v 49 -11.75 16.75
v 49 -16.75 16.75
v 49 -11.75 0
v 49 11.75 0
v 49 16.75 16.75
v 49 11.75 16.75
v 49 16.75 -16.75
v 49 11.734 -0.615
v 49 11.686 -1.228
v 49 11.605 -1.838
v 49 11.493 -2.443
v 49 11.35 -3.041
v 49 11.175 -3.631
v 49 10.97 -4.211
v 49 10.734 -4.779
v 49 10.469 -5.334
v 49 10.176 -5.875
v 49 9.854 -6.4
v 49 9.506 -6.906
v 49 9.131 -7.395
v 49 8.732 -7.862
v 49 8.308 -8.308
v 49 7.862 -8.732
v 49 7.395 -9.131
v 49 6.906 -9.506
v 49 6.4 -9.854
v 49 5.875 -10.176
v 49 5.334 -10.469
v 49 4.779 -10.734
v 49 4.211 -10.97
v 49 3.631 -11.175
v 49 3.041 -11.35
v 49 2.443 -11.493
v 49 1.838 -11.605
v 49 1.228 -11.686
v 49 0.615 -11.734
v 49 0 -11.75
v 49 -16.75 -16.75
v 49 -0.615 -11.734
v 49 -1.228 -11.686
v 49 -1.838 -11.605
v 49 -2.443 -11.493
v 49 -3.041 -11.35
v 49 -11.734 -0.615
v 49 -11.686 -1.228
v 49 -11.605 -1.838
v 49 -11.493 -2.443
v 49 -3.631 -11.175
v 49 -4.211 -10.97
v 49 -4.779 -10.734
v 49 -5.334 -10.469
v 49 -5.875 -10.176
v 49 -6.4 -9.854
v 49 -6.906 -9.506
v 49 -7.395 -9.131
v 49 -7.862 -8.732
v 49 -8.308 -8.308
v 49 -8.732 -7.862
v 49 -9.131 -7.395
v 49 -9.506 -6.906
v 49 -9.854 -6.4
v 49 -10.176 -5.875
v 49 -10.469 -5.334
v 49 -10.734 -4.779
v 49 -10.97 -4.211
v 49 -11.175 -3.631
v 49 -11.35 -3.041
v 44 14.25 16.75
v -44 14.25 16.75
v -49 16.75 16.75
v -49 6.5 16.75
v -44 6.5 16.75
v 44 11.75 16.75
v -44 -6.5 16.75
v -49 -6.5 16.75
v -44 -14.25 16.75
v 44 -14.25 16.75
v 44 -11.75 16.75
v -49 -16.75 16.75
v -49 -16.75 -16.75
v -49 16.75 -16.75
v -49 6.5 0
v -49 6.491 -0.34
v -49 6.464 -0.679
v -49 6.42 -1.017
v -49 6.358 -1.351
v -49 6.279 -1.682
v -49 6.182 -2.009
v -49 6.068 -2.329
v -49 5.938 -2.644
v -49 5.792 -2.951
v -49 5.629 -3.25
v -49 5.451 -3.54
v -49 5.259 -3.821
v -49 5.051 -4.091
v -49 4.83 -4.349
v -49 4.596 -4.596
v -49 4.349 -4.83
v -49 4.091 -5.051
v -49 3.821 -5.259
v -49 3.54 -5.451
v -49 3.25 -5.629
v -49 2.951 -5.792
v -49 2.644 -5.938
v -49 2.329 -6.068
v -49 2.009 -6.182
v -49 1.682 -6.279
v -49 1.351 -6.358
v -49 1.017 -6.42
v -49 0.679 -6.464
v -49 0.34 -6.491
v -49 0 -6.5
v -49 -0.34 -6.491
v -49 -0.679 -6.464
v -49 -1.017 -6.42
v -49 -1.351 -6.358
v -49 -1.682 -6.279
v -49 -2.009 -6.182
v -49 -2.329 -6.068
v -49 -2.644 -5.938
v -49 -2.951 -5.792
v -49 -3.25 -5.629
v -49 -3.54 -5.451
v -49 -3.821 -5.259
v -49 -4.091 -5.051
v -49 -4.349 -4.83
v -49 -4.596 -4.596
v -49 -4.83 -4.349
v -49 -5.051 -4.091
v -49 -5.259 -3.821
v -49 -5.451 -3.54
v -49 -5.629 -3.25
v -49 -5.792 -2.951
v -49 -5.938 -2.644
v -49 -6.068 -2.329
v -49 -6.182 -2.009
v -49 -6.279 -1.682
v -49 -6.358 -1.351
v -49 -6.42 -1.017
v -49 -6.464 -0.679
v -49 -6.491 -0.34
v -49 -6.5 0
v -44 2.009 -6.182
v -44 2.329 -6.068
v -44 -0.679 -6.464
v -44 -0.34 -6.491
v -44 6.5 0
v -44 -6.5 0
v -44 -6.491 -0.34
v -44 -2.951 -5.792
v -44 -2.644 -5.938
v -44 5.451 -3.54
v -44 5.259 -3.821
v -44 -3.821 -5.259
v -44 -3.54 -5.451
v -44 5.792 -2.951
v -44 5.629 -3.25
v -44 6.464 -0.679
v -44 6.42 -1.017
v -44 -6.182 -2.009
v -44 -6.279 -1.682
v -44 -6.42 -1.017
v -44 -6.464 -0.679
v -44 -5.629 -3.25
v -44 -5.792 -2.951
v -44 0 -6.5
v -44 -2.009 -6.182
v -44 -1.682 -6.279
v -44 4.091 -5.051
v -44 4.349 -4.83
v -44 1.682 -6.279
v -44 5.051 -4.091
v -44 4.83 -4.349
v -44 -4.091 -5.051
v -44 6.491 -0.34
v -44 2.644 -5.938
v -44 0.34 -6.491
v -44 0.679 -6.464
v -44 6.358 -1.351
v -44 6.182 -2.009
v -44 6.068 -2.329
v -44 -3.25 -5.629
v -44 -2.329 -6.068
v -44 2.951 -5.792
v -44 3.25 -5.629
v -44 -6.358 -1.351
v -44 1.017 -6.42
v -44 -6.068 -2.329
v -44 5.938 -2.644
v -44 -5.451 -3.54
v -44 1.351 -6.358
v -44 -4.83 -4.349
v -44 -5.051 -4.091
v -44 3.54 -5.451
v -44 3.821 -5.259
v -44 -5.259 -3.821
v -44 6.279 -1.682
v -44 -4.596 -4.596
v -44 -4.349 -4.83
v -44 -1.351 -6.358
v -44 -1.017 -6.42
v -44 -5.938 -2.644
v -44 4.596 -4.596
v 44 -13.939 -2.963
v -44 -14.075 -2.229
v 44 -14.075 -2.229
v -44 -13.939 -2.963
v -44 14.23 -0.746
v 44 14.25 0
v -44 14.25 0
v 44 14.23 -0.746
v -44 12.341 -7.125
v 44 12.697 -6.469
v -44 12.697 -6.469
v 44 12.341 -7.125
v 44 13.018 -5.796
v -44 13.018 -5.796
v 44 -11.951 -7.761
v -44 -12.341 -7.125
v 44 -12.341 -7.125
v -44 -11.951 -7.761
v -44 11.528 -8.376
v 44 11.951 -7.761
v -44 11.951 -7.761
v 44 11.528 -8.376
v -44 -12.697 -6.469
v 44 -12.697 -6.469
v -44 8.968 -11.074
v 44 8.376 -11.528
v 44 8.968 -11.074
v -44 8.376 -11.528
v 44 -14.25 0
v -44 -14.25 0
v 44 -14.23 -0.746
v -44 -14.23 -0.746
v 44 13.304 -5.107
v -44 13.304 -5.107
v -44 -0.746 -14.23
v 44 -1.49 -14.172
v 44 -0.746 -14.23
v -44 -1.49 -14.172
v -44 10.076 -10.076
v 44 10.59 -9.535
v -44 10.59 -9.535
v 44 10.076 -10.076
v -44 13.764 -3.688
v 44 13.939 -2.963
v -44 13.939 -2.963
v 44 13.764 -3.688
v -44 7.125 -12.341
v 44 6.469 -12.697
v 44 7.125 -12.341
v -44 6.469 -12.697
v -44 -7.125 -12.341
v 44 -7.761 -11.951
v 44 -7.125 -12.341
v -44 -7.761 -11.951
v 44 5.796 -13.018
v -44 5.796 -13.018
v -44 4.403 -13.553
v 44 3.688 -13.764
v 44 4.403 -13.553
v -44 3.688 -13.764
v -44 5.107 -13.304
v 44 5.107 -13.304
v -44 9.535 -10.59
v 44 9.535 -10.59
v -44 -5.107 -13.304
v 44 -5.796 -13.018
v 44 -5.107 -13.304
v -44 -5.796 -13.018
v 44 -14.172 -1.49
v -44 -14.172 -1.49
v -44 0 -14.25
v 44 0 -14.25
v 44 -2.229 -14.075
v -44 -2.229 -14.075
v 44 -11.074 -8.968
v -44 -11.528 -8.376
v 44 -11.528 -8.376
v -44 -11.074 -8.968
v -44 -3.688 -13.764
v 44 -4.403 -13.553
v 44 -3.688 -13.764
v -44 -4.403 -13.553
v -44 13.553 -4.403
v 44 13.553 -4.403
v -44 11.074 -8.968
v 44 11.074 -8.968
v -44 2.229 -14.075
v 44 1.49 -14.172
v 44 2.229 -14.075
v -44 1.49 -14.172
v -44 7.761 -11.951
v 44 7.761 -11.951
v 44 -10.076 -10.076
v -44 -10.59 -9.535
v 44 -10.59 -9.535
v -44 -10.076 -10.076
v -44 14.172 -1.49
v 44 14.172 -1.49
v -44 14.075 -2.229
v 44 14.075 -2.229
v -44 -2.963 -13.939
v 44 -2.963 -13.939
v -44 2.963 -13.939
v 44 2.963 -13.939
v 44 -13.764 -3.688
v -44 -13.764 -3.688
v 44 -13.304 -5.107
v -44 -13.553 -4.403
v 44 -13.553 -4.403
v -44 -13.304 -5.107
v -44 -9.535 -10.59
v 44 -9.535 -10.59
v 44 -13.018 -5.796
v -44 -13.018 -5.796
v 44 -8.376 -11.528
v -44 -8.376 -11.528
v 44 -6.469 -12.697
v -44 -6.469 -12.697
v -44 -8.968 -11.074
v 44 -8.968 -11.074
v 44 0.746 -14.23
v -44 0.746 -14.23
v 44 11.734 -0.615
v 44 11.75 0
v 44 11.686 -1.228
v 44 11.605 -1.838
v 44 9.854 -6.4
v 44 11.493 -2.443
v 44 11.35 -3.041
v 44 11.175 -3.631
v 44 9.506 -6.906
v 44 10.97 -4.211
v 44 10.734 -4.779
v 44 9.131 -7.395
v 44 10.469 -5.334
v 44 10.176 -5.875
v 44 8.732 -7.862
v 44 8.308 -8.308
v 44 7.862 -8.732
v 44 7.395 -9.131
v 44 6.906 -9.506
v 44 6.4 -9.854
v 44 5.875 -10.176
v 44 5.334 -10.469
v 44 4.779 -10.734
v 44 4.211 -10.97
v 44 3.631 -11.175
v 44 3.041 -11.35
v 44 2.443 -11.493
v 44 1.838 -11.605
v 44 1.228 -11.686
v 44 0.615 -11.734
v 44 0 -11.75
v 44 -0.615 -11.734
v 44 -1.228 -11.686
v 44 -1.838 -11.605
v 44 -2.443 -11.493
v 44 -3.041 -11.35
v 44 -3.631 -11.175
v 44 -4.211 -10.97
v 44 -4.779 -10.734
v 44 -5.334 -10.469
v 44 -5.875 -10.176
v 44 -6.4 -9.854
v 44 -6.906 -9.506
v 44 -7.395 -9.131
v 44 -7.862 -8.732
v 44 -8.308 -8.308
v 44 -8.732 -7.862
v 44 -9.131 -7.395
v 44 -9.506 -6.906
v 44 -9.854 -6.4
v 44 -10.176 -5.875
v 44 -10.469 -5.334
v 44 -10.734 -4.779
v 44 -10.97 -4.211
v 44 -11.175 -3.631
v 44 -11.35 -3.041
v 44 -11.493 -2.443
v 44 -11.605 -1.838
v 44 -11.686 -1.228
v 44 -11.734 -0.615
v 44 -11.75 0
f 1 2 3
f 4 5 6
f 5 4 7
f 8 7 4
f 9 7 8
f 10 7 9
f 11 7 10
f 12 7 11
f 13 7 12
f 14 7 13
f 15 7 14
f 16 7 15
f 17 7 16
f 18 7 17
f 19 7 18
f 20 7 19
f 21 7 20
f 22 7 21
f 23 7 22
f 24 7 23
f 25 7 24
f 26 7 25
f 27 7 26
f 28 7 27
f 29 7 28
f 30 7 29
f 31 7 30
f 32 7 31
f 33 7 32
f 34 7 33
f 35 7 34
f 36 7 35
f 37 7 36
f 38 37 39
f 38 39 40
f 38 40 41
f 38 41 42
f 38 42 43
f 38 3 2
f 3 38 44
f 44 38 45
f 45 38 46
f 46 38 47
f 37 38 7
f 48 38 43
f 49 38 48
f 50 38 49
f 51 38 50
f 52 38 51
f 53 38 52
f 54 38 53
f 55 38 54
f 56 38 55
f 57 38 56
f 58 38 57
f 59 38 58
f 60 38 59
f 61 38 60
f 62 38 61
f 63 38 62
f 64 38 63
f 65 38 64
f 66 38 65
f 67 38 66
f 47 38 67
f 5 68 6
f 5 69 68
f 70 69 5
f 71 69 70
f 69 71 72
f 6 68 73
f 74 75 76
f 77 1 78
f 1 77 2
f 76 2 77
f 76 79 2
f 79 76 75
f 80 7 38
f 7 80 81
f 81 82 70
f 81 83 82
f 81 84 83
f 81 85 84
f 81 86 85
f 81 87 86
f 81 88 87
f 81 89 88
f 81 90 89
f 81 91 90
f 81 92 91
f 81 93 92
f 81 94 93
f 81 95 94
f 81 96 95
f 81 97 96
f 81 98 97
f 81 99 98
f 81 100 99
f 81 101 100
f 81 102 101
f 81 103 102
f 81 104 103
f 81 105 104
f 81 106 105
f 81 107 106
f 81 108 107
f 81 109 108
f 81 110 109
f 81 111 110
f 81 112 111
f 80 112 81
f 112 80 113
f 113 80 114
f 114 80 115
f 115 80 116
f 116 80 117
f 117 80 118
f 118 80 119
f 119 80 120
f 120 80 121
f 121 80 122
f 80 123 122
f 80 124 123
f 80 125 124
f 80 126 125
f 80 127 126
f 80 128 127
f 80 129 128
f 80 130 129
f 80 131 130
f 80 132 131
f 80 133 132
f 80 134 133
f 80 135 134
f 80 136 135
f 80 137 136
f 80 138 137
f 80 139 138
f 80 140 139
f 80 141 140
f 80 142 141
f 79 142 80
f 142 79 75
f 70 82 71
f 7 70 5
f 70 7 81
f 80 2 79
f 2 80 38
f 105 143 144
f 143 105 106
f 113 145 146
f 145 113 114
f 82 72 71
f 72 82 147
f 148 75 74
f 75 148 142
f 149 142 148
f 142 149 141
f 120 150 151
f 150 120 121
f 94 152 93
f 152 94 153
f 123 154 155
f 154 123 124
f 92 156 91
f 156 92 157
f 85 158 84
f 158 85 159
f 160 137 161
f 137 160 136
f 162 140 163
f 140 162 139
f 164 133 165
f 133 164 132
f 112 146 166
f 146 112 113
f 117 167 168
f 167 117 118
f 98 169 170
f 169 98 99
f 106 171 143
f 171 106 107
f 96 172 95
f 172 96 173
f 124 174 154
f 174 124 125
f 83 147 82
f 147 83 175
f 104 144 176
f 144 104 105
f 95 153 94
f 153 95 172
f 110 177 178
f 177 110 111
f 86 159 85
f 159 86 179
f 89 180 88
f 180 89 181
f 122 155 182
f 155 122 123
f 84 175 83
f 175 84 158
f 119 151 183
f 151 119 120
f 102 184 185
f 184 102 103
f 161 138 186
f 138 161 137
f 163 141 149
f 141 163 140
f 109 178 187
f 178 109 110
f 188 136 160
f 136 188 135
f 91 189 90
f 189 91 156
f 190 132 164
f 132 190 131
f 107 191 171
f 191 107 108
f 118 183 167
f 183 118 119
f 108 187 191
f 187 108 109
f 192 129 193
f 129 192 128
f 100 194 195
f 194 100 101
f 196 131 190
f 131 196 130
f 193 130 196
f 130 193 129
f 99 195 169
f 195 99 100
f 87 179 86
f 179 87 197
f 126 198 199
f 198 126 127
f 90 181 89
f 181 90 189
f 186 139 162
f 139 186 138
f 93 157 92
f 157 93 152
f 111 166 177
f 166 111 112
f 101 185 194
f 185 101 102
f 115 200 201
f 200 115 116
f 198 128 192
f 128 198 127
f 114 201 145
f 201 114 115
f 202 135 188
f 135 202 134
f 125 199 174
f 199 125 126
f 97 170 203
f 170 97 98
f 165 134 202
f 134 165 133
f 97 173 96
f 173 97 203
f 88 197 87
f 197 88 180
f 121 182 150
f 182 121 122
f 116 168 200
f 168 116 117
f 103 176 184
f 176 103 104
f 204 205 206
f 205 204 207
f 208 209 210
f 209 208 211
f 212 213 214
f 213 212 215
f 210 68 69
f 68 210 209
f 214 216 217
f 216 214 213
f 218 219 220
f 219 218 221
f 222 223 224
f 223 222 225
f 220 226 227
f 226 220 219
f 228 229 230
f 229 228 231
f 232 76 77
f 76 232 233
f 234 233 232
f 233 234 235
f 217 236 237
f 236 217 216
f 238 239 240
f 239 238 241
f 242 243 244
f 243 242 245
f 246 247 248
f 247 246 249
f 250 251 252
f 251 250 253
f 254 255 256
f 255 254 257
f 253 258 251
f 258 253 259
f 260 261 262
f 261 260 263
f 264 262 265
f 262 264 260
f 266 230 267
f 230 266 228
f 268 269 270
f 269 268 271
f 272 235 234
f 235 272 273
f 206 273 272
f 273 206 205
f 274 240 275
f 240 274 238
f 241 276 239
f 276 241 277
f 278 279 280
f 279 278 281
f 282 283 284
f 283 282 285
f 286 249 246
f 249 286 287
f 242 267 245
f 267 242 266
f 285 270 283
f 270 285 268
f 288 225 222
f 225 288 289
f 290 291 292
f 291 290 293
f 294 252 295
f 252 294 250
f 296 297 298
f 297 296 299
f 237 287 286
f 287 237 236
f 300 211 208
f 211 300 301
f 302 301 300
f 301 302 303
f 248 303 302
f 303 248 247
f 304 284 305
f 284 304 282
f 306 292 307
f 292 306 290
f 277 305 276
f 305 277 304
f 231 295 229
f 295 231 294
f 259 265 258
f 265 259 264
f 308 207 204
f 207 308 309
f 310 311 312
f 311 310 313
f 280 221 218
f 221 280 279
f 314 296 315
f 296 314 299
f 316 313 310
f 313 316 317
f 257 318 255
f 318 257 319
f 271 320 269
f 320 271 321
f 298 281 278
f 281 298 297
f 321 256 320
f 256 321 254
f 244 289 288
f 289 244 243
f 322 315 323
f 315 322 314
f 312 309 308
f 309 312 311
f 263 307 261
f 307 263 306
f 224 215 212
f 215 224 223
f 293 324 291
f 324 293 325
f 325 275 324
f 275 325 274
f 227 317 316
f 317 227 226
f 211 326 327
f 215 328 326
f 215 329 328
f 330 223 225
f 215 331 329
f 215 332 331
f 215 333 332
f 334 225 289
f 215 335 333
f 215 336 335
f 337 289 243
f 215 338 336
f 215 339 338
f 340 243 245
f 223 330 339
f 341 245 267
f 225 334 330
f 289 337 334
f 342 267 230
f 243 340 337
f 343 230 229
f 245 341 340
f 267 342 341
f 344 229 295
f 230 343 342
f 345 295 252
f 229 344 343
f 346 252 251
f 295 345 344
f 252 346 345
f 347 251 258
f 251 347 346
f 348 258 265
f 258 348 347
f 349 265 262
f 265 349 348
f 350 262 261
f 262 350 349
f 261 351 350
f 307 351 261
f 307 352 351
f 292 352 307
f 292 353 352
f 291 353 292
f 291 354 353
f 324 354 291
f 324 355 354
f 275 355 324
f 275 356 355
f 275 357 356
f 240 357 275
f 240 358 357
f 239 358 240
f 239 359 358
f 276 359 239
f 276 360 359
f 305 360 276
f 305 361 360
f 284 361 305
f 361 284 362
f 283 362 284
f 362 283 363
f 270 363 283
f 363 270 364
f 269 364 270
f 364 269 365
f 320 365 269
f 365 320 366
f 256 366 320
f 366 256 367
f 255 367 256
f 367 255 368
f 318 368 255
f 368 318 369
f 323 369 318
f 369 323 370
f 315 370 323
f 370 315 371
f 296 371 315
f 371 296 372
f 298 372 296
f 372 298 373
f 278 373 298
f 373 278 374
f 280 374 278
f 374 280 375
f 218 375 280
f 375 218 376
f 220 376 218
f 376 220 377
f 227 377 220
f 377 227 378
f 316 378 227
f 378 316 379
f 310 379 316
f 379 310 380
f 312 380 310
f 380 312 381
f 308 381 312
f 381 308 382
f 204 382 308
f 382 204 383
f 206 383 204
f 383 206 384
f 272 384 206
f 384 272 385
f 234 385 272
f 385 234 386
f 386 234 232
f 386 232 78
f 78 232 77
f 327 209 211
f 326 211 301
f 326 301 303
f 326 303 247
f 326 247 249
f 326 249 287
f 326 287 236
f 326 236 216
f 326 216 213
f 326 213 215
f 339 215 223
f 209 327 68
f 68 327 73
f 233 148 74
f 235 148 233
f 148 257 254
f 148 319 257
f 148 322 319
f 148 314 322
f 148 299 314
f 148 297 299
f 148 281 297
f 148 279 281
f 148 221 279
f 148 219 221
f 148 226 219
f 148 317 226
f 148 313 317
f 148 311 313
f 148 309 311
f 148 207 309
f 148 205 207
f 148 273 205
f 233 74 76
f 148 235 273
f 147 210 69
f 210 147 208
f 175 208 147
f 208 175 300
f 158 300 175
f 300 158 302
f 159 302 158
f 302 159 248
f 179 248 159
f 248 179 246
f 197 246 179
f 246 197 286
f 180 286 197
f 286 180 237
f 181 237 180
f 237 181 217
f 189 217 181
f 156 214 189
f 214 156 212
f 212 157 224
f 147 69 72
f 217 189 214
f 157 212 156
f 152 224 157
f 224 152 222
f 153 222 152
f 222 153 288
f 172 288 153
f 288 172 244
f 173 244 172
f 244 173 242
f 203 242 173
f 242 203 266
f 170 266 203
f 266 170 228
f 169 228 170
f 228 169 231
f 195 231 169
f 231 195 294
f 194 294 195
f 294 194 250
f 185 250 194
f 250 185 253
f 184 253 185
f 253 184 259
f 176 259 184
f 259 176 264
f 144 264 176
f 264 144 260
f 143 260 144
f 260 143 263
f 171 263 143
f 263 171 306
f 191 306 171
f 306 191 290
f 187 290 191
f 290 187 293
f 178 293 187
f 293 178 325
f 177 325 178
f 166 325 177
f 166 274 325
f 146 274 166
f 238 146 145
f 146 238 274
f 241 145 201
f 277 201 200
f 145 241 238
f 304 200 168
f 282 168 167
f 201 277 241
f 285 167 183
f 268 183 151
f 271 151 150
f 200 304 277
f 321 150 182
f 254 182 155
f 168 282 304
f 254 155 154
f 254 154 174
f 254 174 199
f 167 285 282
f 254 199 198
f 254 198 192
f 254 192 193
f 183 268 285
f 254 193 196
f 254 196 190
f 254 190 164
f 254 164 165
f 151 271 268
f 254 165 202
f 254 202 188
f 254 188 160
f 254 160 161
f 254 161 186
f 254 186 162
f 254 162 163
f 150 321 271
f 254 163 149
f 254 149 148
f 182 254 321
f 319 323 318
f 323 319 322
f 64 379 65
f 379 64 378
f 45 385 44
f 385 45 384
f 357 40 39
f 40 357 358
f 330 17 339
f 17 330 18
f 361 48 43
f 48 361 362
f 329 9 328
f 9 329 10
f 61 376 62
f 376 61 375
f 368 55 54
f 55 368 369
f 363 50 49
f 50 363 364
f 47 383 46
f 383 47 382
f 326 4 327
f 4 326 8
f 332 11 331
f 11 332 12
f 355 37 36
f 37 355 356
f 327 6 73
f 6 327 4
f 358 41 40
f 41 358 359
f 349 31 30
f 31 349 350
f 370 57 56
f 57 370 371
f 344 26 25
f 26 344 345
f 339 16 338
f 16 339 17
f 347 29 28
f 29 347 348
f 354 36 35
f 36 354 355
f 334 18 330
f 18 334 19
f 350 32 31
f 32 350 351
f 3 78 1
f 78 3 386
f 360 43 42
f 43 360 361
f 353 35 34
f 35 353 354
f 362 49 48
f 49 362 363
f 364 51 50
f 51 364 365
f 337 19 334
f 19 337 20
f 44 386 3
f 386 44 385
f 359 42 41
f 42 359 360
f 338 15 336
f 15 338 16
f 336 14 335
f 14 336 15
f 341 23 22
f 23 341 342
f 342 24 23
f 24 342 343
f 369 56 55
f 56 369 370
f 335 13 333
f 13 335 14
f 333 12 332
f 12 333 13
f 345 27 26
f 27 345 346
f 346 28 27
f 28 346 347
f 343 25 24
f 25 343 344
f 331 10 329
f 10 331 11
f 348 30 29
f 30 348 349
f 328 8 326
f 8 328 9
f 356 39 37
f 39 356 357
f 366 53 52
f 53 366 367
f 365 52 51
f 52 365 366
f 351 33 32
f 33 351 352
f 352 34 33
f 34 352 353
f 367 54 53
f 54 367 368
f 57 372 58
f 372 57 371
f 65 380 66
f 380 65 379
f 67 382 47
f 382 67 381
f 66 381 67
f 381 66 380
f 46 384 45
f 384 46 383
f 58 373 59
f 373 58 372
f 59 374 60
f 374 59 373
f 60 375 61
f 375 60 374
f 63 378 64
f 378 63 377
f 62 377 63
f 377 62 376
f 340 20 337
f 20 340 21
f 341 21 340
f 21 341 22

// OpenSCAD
small_out=13/2;
big_in_r=28.5/2;
big_out_r=23.5/2;

w=88;

difference() {
    cube([w+10, big_out_r*2+10, big_out_r*2+10],center=true);
    
    translate([-20,0,0]) pipe(small_out, w);
    pipe(big_in_r, w);
    translate([20,0,0]) pipe(big_out_r, w);
}

module pipe(r, w) {
    hull(){
        rotate([0,90,0]) cylinder(w, r, r, center=true, $fn=120);
        translate([0,0,50]) rotate([0,90,0]) cylinder(w, r, r, center=true, $fn=120);
    }
}
